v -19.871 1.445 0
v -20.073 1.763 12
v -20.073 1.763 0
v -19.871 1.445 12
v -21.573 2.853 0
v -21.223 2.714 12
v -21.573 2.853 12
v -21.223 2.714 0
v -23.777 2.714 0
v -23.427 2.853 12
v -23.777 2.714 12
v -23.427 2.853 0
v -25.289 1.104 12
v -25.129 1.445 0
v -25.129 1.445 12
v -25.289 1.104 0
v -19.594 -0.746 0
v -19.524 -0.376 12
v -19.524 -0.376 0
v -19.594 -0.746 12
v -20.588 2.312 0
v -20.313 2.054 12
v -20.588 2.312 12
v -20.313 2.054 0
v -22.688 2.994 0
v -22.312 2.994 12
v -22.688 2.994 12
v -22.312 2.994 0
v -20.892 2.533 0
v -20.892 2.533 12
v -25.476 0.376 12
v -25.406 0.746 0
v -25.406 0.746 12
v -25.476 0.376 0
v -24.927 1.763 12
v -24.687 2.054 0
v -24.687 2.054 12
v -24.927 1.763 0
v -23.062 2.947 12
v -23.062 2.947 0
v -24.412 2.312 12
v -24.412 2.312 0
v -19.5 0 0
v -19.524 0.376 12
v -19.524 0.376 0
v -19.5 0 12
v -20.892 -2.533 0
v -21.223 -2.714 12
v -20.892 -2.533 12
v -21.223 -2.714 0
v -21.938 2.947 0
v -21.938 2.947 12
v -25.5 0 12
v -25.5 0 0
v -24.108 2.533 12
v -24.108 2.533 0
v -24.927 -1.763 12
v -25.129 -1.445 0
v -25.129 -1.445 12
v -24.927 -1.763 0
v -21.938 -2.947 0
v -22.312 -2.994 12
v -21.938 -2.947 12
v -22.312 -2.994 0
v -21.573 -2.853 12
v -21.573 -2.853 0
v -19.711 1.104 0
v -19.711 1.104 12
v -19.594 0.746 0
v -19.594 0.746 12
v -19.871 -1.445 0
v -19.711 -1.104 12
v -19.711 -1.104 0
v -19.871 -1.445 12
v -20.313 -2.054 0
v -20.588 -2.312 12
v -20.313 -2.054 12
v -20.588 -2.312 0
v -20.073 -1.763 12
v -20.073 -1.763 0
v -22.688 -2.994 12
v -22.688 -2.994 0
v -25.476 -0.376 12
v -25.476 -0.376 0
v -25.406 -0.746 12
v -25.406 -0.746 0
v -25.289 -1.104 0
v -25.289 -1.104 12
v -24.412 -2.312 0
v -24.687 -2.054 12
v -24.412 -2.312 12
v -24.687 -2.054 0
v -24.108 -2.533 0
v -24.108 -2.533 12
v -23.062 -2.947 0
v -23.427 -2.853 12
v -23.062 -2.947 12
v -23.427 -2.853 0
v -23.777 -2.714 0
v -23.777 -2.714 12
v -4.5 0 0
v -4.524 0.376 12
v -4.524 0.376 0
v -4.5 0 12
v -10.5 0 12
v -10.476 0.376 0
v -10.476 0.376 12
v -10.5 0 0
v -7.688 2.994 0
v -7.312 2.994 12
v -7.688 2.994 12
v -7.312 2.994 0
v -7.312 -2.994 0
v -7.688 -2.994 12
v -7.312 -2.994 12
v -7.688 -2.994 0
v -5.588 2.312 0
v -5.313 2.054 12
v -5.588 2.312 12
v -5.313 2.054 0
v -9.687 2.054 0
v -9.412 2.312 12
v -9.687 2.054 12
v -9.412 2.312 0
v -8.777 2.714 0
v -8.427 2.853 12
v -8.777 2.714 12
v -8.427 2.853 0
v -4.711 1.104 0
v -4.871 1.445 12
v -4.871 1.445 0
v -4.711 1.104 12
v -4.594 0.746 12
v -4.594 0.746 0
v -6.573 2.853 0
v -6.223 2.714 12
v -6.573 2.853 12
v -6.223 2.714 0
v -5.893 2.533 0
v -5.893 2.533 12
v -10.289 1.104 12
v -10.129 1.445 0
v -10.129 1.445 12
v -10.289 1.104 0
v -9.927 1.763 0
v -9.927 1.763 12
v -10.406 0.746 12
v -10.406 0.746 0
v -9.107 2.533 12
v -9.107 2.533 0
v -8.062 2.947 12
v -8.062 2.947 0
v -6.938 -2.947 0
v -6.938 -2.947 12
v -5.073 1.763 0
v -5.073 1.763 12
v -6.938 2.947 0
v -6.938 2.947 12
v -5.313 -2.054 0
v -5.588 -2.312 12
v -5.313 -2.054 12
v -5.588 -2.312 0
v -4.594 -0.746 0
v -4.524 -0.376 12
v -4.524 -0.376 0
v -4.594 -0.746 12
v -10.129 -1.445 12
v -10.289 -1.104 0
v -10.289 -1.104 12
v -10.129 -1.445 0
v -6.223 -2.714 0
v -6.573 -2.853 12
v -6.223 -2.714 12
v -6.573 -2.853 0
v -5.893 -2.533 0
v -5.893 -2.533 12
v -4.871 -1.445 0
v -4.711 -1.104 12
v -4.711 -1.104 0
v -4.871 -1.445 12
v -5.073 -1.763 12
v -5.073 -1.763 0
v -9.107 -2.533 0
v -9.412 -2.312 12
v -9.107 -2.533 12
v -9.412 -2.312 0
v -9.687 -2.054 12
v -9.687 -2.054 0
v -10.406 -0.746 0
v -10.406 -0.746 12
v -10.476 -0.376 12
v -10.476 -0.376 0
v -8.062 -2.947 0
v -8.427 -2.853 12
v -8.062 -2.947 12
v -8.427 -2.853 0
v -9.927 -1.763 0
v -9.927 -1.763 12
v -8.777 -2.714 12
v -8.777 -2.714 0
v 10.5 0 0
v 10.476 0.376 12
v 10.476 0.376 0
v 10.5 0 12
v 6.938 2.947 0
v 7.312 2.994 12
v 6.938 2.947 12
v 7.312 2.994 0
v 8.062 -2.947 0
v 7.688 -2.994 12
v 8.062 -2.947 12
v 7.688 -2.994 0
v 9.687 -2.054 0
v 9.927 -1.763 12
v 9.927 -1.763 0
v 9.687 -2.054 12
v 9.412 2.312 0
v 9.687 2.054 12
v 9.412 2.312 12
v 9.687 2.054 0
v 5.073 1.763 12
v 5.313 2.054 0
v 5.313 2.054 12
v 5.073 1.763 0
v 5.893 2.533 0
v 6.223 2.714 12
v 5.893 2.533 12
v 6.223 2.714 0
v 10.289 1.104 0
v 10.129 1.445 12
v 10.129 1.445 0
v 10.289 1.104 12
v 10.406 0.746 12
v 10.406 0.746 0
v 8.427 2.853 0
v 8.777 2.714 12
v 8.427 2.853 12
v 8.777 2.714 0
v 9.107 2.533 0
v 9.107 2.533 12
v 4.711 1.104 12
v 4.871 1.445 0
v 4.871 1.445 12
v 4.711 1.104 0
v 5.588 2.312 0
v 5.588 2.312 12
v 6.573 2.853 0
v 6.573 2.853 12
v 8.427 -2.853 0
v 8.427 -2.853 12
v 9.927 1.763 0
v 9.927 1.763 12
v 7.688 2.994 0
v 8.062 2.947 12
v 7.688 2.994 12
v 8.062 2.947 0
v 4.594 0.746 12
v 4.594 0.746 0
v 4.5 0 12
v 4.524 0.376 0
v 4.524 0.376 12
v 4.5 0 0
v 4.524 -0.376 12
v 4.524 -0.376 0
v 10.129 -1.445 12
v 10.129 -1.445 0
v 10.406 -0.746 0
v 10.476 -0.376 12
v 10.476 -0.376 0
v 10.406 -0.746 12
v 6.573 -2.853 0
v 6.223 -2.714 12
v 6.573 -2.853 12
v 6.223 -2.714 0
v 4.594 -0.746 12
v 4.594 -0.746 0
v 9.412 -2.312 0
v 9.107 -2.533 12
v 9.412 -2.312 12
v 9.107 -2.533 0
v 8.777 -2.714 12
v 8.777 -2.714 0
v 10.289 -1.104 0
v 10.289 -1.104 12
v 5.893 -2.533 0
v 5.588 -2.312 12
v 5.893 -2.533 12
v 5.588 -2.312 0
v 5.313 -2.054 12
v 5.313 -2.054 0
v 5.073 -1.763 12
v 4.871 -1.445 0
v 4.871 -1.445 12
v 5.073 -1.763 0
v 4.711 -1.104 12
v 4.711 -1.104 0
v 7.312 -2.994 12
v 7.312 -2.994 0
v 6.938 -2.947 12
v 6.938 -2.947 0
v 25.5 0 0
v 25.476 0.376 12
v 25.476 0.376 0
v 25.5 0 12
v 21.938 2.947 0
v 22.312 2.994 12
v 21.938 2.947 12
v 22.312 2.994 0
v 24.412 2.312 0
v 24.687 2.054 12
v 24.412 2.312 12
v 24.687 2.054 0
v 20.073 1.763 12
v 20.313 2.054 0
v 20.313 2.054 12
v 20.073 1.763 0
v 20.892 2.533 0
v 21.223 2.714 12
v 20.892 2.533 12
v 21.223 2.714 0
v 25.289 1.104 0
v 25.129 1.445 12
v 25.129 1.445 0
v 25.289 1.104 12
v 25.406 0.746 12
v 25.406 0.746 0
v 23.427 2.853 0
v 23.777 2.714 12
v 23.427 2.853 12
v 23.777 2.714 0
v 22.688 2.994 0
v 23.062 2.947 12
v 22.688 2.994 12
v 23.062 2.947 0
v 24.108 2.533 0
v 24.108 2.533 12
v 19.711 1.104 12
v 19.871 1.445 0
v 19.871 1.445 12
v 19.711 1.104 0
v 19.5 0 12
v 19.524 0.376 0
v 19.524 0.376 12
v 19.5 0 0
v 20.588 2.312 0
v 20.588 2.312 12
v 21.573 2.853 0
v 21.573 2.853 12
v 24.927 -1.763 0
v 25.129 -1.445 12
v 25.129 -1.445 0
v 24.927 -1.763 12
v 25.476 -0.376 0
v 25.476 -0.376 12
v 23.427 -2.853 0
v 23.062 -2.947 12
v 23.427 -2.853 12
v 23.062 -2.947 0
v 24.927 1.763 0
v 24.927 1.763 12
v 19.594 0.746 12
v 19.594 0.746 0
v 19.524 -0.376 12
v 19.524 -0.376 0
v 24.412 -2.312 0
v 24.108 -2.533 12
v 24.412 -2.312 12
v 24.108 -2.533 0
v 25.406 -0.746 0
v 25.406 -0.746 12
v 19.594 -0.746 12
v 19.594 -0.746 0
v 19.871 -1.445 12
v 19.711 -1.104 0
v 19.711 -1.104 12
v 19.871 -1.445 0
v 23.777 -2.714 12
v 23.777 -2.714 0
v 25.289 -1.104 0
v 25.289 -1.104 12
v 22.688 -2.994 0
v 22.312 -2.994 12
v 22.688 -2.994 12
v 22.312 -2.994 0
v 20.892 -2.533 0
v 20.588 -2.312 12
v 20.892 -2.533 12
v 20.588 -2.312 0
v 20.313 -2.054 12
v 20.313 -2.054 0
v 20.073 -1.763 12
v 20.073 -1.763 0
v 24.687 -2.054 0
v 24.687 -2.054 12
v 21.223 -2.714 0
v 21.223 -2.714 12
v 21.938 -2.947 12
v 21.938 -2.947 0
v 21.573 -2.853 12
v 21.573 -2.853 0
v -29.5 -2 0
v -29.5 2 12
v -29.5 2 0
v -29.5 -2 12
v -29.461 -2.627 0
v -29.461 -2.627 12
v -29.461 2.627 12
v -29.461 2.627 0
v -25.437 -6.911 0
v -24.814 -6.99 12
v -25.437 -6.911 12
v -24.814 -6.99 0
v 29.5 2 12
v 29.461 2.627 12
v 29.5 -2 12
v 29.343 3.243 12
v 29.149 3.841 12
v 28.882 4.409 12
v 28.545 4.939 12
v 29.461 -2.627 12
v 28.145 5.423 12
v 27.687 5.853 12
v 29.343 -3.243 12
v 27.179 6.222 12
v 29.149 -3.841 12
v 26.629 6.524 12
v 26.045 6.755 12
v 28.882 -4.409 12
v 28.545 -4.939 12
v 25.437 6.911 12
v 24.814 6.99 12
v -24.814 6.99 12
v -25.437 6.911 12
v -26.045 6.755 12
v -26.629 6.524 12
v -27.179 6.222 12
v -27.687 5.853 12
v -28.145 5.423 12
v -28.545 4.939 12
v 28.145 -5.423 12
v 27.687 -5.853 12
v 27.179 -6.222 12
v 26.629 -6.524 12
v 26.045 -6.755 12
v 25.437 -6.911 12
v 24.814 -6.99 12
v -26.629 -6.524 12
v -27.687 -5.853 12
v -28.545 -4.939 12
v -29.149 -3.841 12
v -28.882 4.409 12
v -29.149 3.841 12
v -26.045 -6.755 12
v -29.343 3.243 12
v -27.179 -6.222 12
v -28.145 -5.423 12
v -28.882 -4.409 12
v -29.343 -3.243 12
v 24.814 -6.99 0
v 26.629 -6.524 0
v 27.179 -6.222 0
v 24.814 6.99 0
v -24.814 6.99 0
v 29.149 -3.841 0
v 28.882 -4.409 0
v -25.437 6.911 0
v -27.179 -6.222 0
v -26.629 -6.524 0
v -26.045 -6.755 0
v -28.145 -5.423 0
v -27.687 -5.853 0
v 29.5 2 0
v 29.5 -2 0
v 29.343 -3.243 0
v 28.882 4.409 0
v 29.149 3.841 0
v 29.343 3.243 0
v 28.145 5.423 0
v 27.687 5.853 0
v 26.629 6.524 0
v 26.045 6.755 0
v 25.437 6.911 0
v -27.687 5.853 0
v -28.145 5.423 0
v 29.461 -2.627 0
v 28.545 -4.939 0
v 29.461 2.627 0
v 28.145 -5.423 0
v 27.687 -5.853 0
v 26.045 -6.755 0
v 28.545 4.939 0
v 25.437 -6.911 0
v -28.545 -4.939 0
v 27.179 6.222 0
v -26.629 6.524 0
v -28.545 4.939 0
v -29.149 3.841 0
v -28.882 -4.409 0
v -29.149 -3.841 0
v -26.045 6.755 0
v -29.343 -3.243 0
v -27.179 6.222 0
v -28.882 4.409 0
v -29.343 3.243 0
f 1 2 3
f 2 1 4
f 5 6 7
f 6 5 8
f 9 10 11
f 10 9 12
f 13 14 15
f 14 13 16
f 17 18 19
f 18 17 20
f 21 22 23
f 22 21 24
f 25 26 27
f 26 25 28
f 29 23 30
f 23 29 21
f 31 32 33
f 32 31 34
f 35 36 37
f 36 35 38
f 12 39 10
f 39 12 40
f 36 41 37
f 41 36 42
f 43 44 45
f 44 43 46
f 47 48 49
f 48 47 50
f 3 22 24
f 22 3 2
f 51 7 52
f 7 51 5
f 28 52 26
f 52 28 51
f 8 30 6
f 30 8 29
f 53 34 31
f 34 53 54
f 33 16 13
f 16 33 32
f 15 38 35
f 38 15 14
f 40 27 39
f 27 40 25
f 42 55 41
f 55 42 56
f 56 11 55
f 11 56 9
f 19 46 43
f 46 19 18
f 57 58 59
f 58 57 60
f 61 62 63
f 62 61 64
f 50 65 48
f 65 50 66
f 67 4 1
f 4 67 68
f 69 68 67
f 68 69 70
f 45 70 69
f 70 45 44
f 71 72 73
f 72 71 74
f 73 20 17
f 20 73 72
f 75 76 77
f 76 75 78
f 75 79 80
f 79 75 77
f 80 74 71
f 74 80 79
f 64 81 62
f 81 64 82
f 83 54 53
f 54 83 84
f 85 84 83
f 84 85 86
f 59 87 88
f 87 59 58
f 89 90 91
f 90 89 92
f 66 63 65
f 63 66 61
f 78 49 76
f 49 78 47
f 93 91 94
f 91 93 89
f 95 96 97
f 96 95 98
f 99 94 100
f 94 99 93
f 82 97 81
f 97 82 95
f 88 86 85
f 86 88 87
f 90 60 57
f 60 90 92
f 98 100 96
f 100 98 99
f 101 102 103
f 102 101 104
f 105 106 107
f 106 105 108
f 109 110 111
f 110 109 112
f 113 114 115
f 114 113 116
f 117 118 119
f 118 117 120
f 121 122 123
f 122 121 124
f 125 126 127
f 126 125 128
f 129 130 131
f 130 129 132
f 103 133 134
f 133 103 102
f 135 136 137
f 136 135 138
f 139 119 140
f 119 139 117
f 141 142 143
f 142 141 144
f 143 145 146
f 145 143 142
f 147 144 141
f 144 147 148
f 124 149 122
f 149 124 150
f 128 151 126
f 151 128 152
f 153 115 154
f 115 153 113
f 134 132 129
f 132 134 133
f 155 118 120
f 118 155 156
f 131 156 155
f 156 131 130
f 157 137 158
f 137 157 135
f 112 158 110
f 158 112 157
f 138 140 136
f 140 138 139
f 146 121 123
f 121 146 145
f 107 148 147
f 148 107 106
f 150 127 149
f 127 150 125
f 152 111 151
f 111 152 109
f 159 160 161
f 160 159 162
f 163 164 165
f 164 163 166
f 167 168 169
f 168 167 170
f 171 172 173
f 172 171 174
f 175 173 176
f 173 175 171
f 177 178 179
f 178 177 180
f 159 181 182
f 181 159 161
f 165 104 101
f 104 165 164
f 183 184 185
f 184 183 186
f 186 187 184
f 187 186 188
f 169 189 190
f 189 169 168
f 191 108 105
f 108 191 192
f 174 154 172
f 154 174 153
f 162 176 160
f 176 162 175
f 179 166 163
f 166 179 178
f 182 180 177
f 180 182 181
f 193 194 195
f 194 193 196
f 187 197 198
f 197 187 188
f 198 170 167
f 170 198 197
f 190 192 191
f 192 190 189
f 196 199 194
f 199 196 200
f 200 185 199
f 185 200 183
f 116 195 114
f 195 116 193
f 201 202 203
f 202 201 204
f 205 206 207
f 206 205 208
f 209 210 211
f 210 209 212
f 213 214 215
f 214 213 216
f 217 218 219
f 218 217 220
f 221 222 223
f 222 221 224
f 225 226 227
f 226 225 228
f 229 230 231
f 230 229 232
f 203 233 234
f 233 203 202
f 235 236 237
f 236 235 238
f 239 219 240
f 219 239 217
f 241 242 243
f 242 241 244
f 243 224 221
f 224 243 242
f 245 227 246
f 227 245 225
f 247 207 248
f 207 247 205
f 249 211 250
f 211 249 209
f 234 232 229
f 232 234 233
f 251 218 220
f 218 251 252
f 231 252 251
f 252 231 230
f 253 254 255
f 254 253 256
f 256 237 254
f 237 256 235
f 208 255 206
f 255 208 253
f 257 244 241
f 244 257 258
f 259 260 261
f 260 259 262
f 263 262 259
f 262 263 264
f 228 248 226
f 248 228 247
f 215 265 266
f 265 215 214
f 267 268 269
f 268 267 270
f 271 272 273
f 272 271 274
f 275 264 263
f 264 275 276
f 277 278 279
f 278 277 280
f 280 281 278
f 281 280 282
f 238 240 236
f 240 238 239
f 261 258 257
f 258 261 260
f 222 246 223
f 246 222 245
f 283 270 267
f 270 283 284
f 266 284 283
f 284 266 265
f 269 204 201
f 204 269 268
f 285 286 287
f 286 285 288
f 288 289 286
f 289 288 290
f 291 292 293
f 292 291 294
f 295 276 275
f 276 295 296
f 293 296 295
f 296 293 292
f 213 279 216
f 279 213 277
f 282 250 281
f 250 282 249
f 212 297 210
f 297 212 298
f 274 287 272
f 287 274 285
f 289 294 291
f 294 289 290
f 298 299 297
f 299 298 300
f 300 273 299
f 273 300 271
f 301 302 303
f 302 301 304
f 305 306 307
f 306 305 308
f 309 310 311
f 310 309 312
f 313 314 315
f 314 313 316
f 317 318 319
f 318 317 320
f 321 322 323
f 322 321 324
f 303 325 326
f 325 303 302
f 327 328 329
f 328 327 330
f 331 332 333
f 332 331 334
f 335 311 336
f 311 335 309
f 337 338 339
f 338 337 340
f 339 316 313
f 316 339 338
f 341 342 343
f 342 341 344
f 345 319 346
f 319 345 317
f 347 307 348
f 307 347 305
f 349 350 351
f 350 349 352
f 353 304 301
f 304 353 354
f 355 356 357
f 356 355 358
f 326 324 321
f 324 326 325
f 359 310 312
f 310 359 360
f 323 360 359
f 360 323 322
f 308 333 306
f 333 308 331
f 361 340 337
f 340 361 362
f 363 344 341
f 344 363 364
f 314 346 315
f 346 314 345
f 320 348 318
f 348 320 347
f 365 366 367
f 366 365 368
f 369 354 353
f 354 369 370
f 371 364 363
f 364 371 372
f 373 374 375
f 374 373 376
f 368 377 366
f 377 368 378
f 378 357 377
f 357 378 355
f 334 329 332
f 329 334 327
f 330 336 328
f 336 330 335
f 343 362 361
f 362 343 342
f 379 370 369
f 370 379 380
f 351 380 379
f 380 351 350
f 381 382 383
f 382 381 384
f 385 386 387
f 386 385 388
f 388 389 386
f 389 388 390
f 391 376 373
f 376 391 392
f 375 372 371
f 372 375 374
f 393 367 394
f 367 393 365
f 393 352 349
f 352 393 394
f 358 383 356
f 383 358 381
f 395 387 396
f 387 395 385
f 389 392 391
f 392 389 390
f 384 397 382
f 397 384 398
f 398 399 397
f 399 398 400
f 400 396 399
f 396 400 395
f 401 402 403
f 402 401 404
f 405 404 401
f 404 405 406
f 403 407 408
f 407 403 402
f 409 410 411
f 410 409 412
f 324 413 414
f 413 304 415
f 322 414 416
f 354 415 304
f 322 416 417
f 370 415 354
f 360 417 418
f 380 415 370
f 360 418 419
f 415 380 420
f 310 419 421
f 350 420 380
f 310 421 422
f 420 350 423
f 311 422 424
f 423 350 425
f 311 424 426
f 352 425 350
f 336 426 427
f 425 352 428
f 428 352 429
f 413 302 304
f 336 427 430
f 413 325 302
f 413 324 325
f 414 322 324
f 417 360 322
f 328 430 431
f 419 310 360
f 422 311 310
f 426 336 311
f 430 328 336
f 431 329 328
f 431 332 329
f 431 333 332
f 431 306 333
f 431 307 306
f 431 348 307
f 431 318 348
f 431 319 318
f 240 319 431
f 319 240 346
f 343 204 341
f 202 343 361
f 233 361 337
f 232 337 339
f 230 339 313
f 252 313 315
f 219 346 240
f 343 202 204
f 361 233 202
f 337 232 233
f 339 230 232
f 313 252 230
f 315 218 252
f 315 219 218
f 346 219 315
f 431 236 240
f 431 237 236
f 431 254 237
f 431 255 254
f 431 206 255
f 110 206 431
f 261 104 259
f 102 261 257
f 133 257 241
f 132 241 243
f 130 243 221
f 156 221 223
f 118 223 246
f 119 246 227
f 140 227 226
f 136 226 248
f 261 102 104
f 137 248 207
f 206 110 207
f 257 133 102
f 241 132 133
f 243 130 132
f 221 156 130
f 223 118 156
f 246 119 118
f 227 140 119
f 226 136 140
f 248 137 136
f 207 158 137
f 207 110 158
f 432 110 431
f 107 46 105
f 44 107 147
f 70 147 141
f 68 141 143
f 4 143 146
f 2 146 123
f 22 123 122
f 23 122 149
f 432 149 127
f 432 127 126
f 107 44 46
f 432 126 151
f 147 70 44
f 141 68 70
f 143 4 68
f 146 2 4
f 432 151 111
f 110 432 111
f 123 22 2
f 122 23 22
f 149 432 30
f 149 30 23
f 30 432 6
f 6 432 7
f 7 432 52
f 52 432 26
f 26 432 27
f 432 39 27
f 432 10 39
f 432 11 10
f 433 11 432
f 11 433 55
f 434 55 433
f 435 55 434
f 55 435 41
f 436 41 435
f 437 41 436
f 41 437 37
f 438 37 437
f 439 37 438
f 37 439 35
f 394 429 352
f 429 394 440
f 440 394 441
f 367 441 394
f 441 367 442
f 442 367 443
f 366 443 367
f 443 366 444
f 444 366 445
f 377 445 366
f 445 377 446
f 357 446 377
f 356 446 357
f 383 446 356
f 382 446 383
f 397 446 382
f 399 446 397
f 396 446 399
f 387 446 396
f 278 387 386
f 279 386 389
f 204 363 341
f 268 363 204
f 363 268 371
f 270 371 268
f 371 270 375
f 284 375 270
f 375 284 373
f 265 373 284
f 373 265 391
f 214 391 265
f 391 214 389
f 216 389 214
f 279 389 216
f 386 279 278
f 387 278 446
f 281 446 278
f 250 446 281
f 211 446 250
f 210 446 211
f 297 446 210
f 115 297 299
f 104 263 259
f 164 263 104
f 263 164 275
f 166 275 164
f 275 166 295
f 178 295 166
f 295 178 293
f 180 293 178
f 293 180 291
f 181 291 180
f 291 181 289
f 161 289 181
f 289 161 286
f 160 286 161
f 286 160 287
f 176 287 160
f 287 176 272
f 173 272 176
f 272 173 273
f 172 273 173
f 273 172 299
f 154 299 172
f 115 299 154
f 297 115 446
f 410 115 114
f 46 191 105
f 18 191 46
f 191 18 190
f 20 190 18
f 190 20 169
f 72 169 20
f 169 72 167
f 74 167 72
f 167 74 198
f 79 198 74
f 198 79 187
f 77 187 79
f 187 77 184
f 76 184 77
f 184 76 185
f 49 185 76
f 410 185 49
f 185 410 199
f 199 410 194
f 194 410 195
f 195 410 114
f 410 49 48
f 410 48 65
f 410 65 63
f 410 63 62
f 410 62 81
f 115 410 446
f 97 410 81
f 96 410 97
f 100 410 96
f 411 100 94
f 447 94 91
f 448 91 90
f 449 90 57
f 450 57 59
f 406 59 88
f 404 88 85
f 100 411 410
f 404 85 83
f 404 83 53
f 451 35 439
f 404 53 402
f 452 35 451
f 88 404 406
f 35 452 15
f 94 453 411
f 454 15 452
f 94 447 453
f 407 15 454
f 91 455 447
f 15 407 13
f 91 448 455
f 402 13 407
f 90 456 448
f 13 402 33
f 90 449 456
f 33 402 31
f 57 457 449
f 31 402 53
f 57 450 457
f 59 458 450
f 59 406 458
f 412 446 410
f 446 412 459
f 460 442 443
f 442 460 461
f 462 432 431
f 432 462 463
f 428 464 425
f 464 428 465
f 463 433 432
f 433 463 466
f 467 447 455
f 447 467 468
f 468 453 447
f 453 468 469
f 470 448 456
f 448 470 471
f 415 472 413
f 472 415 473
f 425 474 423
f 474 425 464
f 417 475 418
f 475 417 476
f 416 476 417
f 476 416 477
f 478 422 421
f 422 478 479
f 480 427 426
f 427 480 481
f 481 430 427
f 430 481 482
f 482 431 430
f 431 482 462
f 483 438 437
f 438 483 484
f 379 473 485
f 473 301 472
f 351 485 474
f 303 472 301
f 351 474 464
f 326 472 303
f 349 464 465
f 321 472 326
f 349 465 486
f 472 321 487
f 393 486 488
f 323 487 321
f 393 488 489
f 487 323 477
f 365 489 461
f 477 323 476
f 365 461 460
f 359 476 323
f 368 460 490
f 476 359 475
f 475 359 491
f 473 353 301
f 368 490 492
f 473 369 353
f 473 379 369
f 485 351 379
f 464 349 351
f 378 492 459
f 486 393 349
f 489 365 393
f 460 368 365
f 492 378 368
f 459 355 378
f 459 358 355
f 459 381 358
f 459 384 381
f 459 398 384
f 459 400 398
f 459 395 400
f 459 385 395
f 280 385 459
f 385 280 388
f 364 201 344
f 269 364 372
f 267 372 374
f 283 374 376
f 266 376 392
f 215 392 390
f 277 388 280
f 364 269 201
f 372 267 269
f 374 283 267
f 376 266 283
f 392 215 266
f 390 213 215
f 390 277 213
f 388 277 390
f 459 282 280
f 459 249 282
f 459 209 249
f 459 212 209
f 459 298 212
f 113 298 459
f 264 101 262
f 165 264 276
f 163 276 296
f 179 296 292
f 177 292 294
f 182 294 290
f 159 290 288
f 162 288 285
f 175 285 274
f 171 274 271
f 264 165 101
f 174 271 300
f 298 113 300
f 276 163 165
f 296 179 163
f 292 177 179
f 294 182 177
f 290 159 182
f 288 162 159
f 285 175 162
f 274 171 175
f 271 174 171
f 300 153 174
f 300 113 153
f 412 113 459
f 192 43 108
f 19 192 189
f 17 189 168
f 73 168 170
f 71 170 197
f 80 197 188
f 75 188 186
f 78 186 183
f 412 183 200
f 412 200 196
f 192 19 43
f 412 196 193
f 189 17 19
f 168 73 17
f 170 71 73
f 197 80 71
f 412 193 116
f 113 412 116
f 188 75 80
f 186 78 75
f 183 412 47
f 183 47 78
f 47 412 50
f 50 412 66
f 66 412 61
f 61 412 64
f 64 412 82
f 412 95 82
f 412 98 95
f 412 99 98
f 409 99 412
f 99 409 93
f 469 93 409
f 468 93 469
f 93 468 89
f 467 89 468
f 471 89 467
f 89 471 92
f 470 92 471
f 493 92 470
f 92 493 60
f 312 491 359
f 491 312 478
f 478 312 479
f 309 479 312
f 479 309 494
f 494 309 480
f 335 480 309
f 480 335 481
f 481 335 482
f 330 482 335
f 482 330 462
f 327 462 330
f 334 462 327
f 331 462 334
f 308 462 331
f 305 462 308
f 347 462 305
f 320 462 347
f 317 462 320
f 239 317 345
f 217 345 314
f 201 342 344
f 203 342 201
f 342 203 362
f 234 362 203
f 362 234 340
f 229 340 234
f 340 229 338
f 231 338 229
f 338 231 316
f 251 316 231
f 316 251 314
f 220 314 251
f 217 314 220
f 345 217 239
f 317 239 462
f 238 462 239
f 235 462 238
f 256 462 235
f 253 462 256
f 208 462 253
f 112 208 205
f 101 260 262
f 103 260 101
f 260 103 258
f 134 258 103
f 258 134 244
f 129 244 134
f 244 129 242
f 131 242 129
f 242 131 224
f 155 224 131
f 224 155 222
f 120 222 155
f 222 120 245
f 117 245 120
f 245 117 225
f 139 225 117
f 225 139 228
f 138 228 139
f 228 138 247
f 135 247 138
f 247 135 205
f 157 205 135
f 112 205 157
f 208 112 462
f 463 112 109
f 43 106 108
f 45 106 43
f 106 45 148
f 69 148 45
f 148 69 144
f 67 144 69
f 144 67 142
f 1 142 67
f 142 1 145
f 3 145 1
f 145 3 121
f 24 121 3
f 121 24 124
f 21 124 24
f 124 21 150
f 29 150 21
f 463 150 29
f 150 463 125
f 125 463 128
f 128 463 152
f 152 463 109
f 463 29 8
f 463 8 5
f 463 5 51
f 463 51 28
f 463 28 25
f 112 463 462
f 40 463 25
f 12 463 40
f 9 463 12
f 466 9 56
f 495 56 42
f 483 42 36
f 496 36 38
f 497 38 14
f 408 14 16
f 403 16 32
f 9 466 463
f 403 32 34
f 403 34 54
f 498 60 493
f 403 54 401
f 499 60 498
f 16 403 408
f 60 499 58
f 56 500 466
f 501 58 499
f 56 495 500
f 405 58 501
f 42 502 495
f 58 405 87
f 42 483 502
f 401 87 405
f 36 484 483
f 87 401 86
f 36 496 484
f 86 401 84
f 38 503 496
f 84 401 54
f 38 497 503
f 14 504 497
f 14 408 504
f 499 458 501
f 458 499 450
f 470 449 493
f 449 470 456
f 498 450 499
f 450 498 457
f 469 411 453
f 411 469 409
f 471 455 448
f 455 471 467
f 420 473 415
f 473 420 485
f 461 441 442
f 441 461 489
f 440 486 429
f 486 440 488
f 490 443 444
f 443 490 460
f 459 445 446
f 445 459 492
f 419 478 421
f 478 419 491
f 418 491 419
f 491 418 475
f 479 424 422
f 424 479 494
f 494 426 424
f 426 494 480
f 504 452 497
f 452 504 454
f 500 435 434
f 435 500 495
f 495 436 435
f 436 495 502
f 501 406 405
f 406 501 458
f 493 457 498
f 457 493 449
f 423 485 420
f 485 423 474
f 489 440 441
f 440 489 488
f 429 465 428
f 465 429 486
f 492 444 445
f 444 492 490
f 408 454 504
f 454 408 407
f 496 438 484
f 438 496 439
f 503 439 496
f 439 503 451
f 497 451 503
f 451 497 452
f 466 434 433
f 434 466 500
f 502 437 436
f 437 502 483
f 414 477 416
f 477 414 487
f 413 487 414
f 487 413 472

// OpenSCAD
$fn = 50;


difference() {
	union() {
		hull() {
			translate(v = [-24.5000000000, 2.0000000000, 0]) {
				cylinder(h = 12, r = 5);
			}
			translate(v = [24.5000000000, 2.0000000000, 0]) {
				cylinder(h = 12, r = 5);
			}
			translate(v = [-24.5000000000, -2.0000000000, 0]) {
				cylinder(h = 12, r = 5);
			}
			translate(v = [24.5000000000, -2.0000000000, 0]) {
				cylinder(h = 12, r = 5);
			}
		}
	}
	union() {
		translate(v = [-22.5000000000, 0.0000000000, 0]) {
			translate(v = [0, 0, -100]) {
				cylinder(h = 200, r = 3.0000000000);
			}
		}
		translate(v = [-7.5000000000, 0.0000000000, 0]) {
			translate(v = [0, 0, -100]) {
				cylinder(h = 200, r = 3.0000000000);
			}
		}
		translate(v = [7.5000000000, 0.0000000000, 0]) {
			translate(v = [0, 0, -100]) {
				cylinder(h = 200, r = 3.0000000000);
			}
		}
		translate(v = [22.5000000000, 0.0000000000, 0]) {
			translate(v = [0, 0, -100]) {
				cylinder(h = 200, r = 3.0000000000);
			}
		}
	}
}
